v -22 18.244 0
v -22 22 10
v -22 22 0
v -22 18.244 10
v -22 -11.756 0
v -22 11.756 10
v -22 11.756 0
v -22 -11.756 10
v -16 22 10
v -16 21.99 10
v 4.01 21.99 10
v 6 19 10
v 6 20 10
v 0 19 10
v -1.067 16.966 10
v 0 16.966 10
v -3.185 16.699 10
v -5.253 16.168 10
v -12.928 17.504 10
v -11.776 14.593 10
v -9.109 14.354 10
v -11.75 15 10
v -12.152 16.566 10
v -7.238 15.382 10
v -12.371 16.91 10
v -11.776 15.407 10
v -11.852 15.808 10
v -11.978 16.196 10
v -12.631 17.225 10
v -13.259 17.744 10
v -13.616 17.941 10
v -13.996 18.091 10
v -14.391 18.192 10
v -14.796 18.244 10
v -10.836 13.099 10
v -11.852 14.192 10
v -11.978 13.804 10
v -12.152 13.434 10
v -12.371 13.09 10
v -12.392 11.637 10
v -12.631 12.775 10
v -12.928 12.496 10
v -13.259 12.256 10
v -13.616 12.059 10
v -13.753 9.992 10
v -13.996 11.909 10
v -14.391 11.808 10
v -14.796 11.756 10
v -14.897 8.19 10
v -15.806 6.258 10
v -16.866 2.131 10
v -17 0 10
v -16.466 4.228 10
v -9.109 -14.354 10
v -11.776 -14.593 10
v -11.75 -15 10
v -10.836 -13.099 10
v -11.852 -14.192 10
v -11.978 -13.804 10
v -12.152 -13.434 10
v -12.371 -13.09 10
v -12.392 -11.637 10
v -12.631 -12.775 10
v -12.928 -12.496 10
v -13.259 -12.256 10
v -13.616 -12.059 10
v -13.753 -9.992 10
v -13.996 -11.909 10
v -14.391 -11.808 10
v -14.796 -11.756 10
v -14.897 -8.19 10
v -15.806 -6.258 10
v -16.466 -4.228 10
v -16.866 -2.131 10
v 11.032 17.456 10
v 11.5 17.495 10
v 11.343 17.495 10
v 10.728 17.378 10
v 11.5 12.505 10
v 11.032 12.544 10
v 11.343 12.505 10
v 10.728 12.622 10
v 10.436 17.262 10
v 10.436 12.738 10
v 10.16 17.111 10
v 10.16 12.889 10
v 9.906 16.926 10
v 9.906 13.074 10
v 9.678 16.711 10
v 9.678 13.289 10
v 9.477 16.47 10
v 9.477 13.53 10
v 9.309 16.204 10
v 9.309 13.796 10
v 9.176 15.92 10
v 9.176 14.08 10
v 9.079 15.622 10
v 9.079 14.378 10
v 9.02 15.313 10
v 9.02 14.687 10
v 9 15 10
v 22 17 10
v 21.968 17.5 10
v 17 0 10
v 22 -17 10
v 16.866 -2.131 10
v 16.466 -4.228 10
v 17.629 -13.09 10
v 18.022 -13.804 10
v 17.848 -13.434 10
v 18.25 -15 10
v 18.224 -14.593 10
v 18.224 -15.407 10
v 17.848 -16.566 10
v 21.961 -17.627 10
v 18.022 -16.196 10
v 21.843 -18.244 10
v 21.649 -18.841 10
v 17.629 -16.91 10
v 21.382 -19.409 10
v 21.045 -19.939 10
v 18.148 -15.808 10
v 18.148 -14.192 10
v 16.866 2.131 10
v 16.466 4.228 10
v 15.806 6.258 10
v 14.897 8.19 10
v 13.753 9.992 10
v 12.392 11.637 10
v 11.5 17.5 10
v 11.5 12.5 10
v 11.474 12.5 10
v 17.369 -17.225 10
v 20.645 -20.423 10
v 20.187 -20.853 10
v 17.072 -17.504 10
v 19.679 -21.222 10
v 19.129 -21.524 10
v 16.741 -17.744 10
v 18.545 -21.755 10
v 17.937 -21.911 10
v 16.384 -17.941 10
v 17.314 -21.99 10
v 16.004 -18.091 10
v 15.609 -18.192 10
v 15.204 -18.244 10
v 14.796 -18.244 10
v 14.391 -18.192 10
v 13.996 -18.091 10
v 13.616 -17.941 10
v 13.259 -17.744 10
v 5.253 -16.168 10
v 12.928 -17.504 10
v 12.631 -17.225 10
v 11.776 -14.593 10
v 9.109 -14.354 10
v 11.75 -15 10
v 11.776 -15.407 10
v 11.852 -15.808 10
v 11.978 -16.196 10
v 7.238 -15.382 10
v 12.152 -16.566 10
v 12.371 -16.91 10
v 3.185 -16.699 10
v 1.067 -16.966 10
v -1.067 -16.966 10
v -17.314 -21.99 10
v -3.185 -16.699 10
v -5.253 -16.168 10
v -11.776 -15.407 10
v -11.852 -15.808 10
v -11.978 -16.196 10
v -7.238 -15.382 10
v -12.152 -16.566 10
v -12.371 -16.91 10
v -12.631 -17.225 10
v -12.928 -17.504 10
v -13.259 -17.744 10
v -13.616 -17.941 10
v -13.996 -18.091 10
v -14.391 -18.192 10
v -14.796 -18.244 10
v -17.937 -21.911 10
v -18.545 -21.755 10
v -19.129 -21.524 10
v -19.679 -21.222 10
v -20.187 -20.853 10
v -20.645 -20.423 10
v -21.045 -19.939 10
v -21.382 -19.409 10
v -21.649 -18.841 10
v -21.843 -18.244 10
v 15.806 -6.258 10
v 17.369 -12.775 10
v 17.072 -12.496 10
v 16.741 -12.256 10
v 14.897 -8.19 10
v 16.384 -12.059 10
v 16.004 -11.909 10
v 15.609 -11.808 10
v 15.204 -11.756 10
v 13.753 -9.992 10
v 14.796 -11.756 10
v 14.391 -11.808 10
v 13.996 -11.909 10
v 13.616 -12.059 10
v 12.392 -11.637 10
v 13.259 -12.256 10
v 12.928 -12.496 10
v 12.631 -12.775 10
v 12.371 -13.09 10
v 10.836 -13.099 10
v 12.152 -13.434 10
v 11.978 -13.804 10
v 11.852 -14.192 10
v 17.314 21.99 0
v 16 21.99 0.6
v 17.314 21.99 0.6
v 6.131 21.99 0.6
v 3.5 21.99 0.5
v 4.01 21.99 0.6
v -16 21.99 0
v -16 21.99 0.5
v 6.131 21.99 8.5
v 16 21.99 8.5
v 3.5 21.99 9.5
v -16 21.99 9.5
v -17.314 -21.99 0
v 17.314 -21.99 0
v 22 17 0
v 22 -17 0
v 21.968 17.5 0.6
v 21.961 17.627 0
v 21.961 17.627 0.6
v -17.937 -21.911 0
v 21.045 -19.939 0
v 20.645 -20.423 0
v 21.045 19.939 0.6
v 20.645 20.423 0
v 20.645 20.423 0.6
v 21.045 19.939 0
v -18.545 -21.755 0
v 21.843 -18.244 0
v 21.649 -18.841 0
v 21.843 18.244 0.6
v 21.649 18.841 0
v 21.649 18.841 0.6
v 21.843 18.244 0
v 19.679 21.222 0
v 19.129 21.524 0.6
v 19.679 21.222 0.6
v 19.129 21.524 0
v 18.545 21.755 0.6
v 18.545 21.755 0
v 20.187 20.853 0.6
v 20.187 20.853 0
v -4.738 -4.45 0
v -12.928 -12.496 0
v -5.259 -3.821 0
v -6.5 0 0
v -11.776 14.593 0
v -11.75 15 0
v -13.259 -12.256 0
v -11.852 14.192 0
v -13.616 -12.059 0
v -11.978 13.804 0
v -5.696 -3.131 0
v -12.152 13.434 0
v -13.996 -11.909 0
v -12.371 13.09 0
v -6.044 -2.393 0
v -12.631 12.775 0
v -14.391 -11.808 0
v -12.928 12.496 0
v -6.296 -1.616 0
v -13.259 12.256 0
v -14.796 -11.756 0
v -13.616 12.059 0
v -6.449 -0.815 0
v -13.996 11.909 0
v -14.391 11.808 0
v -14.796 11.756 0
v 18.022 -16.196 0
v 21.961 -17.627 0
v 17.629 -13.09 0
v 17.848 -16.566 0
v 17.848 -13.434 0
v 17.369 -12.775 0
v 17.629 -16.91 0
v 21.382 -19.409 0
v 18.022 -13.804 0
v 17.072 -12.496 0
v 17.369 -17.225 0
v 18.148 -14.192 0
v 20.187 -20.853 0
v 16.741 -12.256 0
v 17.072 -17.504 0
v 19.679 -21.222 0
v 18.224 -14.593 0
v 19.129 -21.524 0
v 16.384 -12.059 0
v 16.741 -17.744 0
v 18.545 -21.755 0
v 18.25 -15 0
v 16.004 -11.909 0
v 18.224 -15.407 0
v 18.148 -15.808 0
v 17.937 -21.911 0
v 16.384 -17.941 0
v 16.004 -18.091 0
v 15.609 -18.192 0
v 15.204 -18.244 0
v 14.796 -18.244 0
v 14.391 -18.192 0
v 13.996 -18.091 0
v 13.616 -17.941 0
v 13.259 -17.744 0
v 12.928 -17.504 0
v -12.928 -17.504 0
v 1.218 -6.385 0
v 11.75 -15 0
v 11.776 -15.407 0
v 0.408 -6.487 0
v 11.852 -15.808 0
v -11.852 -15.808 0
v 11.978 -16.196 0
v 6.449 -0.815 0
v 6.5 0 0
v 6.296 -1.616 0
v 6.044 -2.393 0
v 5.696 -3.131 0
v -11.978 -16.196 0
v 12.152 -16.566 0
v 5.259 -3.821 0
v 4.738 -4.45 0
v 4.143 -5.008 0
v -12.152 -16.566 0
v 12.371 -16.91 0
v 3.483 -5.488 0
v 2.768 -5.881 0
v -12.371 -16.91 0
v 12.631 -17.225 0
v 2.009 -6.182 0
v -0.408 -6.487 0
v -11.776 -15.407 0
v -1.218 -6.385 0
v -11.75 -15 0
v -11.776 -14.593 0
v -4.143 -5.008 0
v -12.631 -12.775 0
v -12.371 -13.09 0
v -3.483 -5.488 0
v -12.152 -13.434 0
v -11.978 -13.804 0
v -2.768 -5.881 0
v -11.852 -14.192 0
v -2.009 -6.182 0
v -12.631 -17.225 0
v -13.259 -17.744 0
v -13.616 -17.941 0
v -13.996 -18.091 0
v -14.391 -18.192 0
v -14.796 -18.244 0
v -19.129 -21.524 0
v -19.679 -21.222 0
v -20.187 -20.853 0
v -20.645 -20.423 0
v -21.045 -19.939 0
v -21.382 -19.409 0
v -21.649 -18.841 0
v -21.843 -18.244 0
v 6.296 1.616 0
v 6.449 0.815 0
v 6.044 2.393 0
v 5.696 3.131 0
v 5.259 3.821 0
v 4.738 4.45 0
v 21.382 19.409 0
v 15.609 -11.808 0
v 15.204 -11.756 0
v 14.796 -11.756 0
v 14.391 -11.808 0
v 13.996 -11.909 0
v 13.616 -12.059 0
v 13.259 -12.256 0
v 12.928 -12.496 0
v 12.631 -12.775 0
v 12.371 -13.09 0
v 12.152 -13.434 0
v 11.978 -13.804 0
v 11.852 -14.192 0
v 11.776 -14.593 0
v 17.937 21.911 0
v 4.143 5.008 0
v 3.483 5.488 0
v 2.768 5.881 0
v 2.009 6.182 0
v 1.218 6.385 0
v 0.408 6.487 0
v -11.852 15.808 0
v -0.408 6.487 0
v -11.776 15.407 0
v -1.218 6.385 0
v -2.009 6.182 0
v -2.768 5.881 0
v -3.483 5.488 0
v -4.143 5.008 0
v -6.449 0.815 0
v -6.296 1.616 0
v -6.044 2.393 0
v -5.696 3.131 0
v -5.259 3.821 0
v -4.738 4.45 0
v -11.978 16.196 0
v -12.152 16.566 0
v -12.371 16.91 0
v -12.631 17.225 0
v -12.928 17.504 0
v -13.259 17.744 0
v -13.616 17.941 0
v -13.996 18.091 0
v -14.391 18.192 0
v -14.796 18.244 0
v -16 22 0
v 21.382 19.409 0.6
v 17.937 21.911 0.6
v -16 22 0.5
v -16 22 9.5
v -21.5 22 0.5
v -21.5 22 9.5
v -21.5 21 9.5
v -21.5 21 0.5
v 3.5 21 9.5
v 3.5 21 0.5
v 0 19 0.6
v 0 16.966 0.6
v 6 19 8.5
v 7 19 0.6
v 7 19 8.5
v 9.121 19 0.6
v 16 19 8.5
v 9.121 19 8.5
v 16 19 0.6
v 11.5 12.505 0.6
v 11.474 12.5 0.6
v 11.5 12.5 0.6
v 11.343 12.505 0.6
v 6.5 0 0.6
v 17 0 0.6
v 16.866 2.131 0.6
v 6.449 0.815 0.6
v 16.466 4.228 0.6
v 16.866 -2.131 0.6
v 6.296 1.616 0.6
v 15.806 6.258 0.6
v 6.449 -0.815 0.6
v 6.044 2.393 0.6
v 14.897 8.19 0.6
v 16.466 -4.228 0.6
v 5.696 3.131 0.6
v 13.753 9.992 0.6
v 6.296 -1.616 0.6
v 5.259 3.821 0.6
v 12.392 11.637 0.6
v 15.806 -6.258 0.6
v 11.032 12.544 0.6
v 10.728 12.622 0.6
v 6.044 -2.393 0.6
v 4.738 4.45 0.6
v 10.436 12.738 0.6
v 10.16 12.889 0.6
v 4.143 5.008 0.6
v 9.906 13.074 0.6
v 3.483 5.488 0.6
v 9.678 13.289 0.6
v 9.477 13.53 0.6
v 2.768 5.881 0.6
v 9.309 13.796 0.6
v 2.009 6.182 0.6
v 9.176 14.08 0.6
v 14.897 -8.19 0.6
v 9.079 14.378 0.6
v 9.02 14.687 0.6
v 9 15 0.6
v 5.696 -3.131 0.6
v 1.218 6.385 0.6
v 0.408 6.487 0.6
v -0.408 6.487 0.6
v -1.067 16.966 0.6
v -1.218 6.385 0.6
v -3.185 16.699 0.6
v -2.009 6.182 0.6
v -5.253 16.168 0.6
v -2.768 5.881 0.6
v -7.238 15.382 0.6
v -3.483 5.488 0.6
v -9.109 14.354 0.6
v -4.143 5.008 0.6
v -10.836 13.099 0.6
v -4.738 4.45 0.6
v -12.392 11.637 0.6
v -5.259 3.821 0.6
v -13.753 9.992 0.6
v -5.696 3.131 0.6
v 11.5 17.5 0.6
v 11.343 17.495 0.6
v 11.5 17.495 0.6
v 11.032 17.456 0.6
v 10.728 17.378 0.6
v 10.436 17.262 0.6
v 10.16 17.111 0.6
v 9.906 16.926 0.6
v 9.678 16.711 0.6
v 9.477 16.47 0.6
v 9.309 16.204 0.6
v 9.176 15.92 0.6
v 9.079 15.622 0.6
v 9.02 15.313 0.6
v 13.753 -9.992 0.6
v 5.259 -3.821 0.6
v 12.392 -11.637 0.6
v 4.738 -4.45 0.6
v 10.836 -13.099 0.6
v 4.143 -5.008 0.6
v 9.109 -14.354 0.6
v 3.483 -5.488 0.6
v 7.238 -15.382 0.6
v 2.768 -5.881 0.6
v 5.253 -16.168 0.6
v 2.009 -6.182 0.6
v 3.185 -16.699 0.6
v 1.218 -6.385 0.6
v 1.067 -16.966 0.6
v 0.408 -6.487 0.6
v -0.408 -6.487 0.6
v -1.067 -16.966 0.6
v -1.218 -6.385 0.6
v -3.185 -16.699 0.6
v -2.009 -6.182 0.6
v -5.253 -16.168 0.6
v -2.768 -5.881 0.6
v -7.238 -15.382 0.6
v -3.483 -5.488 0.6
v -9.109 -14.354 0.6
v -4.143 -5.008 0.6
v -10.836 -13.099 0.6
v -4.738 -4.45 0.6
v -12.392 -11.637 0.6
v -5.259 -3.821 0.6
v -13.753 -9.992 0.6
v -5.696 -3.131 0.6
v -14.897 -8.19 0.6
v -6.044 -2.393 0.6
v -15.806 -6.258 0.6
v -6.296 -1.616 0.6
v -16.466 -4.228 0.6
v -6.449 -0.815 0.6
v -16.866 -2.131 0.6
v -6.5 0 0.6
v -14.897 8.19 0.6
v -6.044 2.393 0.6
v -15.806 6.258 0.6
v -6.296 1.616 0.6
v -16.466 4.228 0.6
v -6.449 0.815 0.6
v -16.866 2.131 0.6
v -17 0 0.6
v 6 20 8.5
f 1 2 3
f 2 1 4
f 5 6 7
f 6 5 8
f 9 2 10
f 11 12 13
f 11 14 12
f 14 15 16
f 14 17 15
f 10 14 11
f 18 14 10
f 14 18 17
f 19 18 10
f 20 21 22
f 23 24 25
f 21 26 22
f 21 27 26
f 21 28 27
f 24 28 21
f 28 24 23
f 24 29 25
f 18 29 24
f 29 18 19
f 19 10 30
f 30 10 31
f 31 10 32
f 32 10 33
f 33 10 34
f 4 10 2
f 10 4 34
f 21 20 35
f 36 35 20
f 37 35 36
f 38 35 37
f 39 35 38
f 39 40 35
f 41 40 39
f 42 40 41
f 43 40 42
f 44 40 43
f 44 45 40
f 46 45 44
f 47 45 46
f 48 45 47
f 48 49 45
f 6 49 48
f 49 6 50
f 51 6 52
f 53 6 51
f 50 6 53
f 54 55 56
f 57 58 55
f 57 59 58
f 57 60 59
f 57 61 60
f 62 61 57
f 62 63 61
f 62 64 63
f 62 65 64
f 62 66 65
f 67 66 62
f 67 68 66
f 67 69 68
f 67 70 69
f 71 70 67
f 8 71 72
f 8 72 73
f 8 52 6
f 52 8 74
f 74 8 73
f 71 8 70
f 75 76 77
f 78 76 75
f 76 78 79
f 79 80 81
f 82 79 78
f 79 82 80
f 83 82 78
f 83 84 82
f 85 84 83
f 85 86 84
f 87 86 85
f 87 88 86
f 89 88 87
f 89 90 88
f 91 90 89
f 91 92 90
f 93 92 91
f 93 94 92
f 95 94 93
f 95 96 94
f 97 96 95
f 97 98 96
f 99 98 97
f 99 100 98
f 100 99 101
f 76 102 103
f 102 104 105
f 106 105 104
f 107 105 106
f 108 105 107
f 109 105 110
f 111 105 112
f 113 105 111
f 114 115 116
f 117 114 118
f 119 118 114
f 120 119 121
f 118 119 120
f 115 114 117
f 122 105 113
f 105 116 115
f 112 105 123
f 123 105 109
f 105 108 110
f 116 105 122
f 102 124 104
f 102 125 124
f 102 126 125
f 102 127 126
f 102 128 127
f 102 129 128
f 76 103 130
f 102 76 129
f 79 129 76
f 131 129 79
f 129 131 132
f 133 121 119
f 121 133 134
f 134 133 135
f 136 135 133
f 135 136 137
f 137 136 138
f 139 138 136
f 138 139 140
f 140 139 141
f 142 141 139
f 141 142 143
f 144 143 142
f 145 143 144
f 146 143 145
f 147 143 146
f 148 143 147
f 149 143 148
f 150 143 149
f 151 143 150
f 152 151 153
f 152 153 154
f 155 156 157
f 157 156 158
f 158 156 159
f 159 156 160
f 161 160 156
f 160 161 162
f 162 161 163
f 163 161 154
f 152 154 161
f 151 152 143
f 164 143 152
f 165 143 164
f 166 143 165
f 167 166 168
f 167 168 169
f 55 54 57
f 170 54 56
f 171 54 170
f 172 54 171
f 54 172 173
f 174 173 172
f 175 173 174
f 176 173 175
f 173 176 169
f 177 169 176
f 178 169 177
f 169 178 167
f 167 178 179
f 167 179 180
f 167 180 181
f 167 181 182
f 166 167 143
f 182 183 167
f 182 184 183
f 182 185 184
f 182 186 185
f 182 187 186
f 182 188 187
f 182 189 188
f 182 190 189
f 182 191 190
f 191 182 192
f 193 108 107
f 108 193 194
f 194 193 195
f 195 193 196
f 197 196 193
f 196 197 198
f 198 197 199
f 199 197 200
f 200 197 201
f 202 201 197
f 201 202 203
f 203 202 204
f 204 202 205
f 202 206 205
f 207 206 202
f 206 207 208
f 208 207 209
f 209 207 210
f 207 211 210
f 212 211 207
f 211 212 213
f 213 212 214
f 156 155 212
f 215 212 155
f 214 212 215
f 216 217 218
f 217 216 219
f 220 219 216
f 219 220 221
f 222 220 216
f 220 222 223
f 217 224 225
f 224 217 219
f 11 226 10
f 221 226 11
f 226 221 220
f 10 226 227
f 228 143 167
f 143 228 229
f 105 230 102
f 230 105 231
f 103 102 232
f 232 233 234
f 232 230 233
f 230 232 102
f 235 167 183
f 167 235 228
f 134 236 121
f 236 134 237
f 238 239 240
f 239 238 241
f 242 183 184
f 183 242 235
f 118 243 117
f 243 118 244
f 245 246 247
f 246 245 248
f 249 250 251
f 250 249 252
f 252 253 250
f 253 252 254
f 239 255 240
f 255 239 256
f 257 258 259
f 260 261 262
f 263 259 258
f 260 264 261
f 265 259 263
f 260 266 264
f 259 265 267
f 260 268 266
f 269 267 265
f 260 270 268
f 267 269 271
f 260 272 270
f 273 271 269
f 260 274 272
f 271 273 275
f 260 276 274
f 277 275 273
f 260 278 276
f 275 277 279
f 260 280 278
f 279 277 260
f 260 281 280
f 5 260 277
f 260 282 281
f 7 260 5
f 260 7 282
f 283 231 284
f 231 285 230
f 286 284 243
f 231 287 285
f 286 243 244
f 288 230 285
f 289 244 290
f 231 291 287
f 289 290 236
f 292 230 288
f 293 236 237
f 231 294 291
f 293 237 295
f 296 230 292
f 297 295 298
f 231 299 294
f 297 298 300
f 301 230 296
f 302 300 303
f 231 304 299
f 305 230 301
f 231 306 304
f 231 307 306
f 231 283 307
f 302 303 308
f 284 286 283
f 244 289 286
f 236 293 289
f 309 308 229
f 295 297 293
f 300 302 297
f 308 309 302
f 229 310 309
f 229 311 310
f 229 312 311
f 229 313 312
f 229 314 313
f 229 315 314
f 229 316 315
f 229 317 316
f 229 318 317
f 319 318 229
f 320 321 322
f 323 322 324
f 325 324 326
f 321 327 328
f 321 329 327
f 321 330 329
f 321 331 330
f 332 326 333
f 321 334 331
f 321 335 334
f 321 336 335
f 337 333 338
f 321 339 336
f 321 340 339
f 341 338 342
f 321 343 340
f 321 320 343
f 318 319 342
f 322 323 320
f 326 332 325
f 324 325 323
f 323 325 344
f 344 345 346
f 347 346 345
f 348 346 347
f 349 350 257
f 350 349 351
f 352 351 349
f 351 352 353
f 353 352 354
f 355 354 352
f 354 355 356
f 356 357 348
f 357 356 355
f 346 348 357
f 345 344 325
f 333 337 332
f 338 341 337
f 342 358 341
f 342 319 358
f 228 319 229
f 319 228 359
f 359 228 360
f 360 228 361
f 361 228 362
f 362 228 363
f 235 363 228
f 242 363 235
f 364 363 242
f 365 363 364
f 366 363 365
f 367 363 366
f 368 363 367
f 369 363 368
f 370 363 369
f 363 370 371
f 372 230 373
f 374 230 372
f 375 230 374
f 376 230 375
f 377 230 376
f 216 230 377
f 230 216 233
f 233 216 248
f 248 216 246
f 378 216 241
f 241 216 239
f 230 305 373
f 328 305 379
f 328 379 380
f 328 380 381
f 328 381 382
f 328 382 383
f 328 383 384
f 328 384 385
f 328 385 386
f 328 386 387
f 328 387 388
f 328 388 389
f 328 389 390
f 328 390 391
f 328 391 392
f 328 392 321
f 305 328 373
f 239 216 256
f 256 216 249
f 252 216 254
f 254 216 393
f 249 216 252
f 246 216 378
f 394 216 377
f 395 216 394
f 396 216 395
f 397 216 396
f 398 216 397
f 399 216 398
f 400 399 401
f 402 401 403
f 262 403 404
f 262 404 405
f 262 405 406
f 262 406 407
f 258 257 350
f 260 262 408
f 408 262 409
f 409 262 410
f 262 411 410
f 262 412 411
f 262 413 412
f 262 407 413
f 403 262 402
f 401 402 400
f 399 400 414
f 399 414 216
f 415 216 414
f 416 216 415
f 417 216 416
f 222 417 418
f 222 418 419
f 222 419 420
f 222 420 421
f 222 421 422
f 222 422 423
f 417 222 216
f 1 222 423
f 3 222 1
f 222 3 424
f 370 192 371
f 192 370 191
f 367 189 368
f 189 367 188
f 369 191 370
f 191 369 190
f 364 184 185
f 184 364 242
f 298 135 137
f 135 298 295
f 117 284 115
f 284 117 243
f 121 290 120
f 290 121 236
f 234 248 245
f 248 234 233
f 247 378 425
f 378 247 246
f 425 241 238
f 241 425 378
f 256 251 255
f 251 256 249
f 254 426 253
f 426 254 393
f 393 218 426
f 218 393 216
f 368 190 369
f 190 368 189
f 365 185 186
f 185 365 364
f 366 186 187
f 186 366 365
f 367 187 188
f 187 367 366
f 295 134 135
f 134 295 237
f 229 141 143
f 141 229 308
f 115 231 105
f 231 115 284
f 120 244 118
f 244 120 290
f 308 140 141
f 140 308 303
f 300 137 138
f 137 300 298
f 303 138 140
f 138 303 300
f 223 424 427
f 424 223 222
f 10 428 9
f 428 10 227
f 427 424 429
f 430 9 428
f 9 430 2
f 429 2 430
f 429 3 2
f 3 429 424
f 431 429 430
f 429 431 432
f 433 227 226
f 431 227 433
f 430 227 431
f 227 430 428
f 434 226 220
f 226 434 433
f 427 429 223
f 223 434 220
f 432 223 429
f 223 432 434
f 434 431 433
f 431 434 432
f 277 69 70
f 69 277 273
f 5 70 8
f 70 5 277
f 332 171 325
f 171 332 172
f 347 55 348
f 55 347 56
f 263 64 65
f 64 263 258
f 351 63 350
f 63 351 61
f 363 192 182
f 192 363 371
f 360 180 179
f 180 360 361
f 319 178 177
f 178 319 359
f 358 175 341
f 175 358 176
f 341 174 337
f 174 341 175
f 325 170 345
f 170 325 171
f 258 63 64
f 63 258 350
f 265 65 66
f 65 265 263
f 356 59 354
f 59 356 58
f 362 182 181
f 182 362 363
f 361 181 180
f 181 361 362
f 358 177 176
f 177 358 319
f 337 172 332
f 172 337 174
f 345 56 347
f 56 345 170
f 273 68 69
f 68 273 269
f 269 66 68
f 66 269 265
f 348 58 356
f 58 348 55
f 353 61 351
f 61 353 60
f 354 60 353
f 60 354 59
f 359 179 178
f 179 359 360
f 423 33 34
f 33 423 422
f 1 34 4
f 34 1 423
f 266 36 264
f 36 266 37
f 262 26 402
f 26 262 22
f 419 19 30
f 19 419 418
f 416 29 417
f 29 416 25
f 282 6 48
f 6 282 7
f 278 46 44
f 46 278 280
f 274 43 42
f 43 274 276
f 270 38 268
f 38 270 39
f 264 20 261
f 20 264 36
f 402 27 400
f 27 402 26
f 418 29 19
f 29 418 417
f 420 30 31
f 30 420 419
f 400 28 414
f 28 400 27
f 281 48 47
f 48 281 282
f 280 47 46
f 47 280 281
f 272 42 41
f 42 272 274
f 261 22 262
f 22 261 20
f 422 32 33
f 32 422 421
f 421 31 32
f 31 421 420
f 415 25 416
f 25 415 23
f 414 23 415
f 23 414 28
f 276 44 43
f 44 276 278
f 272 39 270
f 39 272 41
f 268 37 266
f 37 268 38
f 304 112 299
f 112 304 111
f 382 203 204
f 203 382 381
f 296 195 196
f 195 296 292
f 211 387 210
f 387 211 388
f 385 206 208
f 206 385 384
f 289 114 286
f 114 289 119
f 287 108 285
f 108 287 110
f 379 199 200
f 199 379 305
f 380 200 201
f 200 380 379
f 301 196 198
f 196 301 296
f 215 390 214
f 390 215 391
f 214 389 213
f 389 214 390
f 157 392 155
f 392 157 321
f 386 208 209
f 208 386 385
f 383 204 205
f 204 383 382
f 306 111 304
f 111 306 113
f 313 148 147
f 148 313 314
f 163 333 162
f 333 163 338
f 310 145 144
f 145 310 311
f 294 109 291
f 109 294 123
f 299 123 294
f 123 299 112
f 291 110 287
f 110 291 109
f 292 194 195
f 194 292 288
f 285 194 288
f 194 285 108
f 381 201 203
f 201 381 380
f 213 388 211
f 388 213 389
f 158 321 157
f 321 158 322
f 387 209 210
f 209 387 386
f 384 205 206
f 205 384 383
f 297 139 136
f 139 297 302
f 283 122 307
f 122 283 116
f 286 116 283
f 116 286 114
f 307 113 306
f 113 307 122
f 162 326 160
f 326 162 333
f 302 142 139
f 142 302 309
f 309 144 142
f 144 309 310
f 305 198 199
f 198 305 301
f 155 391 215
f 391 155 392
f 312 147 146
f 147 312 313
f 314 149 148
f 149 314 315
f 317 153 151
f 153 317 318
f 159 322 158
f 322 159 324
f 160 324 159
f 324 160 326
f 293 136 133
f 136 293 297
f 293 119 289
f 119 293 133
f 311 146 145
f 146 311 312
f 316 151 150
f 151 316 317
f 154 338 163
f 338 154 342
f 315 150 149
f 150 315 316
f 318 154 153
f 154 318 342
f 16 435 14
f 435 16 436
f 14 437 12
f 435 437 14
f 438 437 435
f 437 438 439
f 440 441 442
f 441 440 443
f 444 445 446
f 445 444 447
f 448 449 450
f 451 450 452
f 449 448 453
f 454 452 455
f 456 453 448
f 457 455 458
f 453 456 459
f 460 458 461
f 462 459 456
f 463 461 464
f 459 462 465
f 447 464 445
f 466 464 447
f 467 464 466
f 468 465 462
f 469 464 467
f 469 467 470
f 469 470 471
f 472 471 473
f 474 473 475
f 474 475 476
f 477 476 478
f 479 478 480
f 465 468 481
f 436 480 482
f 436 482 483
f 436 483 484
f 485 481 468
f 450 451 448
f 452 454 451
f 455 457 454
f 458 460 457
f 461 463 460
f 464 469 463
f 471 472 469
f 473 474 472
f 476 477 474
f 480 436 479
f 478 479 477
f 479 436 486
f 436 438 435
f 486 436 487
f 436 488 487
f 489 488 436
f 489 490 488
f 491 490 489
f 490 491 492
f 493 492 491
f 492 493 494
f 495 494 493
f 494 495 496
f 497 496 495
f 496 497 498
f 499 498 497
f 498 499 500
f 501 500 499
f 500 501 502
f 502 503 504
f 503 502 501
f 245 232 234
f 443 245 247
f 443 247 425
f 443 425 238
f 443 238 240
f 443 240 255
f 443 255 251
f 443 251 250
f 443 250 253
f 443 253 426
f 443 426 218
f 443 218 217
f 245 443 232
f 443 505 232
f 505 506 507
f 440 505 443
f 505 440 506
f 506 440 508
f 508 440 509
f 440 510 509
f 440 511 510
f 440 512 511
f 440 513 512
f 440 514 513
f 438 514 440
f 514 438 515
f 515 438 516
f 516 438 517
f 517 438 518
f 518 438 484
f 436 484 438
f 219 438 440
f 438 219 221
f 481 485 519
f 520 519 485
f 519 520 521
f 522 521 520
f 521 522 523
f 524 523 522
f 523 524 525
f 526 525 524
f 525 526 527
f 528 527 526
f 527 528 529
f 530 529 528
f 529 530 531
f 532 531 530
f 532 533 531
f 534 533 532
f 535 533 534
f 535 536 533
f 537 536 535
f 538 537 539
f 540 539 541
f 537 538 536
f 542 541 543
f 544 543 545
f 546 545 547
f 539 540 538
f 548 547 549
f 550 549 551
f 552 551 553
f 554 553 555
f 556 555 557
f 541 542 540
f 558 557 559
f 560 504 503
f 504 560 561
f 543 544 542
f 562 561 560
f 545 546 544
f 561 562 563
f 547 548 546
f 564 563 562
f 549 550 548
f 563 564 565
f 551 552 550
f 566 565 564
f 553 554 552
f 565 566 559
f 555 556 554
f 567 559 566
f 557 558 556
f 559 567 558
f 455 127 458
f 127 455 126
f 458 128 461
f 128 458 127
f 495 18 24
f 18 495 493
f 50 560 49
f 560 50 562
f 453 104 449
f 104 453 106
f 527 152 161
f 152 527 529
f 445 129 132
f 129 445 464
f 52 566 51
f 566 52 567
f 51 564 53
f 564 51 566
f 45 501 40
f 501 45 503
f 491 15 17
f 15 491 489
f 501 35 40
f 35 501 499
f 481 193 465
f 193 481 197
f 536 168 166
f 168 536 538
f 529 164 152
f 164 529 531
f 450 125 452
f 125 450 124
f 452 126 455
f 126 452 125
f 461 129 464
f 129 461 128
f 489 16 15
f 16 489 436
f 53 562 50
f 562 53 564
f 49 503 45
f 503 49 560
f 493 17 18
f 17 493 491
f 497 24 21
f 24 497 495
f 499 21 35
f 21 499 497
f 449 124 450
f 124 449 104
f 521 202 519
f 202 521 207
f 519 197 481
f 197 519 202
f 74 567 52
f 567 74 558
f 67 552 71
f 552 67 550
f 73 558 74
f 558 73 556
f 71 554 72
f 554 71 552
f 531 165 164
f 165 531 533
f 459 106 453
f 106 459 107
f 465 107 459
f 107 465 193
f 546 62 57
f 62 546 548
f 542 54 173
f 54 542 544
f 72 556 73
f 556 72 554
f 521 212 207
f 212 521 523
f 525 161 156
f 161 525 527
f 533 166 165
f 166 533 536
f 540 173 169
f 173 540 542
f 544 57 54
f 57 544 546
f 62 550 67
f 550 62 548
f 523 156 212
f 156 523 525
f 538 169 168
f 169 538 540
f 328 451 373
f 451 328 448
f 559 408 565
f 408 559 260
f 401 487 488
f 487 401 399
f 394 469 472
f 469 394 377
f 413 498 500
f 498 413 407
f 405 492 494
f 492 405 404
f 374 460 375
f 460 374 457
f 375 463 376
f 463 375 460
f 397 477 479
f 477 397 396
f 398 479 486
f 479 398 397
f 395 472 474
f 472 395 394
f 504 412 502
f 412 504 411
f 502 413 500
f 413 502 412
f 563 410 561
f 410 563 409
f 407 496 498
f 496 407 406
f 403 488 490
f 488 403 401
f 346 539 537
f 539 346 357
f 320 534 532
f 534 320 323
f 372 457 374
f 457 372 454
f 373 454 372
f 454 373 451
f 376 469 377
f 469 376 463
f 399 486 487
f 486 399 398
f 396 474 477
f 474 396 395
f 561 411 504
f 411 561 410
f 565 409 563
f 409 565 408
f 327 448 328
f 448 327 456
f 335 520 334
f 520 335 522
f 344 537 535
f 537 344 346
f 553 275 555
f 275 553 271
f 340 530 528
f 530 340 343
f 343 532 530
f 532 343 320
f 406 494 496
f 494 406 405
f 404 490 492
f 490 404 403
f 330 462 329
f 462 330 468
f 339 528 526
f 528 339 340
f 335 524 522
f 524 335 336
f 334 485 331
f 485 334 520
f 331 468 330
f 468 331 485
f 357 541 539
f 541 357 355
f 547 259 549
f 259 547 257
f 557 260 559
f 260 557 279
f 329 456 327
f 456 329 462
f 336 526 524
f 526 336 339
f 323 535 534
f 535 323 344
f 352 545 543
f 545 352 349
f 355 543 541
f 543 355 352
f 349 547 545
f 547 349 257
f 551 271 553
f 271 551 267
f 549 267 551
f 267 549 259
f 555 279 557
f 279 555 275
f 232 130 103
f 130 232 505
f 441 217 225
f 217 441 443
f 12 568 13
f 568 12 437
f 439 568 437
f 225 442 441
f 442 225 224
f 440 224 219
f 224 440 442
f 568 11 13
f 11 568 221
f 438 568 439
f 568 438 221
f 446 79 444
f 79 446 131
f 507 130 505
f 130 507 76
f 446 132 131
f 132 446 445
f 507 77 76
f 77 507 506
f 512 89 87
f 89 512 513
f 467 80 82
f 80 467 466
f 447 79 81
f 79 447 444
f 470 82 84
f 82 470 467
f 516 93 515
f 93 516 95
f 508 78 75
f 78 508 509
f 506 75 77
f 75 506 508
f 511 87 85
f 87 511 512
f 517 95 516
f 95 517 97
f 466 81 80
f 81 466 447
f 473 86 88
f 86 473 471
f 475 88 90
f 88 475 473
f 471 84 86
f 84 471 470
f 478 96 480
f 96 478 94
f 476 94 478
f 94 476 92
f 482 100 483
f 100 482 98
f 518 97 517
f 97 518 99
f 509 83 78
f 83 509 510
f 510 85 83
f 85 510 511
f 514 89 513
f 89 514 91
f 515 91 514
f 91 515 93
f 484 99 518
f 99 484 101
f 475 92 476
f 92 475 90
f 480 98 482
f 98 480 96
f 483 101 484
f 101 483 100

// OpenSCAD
$fn = 50;


union() {
	difference() {
		union() {
			translate(v = [0, 0, 0]) {
				rotate(a = [0, 0, 0]) {
					hull() {
						translate(v = [-17.0000000000, 17.0000000000, 0]) {
							rotate(a = [0, 0, 0]) {
								translate(v = [0, 0, 0]) {
									rotate(a = [0, 0, 0]) {
										cylinder(h = 10, r = 5);
									}
								}
							}
						}
						translate(v = [17.0000000000, 17.0000000000, 0]) {
							rotate(a = [0, 0, 0]) {
								translate(v = [0, 0, 0]) {
									rotate(a = [0, 0, 0]) {
										cylinder(h = 10, r = 5);
									}
								}
							}
						}
						translate(v = [-17.0000000000, -17.0000000000, 0]) {
							rotate(a = [0, 0, 0]) {
								translate(v = [0, 0, 0]) {
									rotate(a = [0, 0, 0]) {
										cylinder(h = 10, r = 5);
									}
								}
							}
						}
						translate(v = [17.0000000000, -17.0000000000, 0]) {
							rotate(a = [0, 0, 0]) {
								translate(v = [0, 0, 0]) {
									rotate(a = [0, 0, 0]) {
										cylinder(h = 10, r = 5);
									}
								}
							}
						}
					}
				}
			}
			translate(v = [-22.0000000000, 16.0000000000, 0]) {
				rotate(a = [0, 0, 0]) {
					cube(size = [6, 6, 10]);
				}
			}
		}
		union() {
			translate(v = [-21.5000000000, 21.0000000000, 0.5000000000]) {
				rotate(a = [0, 0, 0]) {
					cube(size = [25, 1, 9.0000000000]);
				}
			}
			translate(v = [-22.5000000000, -15.0000000000, -125]) {
				rotate(a = [0, 0, 0]) {
					hull() {
						translate(v = [7.5000000000, 0, 0]) {
							rotate(a = [0, 0, 0]) {
								translate(v = [0, 0, 0]) {
									rotate(a = [0, 0, 0]) {
										cylinder(h = 250, r = 3.2500000000);
									}
								}
							}
						}
						translate(v = [-7.5000000000, 0, 0]) {
							rotate(a = [0, 0, 0]) {
								translate(v = [0, 0, 0]) {
									rotate(a = [0, 0, 0]) {
										cylinder(h = 250, r = 3.2500000000);
									}
								}
							}
						}
					}
				}
			}
			translate(v = [-22.5000000000, 15.0000000000, -125]) {
				rotate(a = [0, 0, 0]) {
					hull() {
						translate(v = [7.5000000000, 0, 0]) {
							rotate(a = [0, 0, 0]) {
								translate(v = [0, 0, 0]) {
									rotate(a = [0, 0, 0]) {
										cylinder(h = 250, r = 3.2500000000);
									}
								}
							}
						}
						translate(v = [-7.5000000000, 0, 0]) {
							rotate(a = [0, 0, 0]) {
								translate(v = [0, 0, 0]) {
									rotate(a = [0, 0, 0]) {
										cylinder(h = 250, r = 3.2500000000);
									}
								}
							}
						}
					}
				}
			}
			translate(v = [15.0000000000, -15.0000000000, -125.0000000000]) {
				rotate(a = [0, 0, 0]) {
					cylinder(h = 250, r = 3.2500000000);
				}
			}
			translate(v = [0.0000000000, 11.0000000000, 0.6000000000]) {
				rotate(a = [0, 0, 0]) {
					cube(size = [11, 8, 12.4000000000]);
				}
			}
			translate(v = [0, 0, 0.6000000000]) {
				rotate(a = [0, 0, 0]) {
					cylinder(h = 12.4000000000, r = 17.0000000000);
				}
			}
			translate(v = [0, 0, -5.0000000000]) {
				rotate(a = [0, 0, 0]) {
					cylinder(h = 10, r = 6.5000000000);
				}
			}
			translate(v = [0.0000000000, 17.5000000000, 0.6000000000]) {
				rotate(a = [0, 0, 0]) {
					cube(size = [22.0000000000, 1.5000000000, 12.4000000000]);
				}
			}
			translate(v = [16.0000000000, 17.5000000000, 0.6000000000]) {
				rotate(a = [0, 0, 0]) {
					cube(size = [6, 4.5000000000, 12.4000000000]);
				}
			}
			translate(v = [6.0000000000, 17.5000000000, 8.5000000000]) {
				rotate(a = [0, 0, 0]) {
					cube(size = [16, 4.5000000000, 1.5000000000]);
				}
			}
			translate(v = [3.2500000000, 22.7500000000, 0.6000000000]) {
				rotate(a = [0, 0, -45]) {
					cube(size = [7.5000000000, 1.5000000000, 12.4000000000]);
				}
			}
			translate(v = [2.5000000000, 12.5000000000, 0.6000000000]) {
				rotate(a = [0, 0, 0]) {
					cube(size = [9.0000000000, 5, 9.4000000000]);
				}
			}
		}
	}
	union() {
		translate(v = [14, 15, 0]) {
			rotate(a = [0, 0, 0]) {
				hull() {
					translate(v = [2.5000000000, 0, 0]) {
						rotate(a = [0, 0, 0]) {
							translate(v = [0, 0, 0]) {
								rotate(a = [0, 0, 0]) {
									cylinder(h = 10, r = 2.5000000000);
								}
							}
						}
					}
					translate(v = [-2.5000000000, 0, 0]) {
						rotate(a = [0, 0, 0]) {
							translate(v = [0, 0, 0]) {
								rotate(a = [0, 0, 0]) {
									cylinder(h = 10, r = 2.5000000000);
								}
							}
						}
					}
				}
			}
		}
	}
}
